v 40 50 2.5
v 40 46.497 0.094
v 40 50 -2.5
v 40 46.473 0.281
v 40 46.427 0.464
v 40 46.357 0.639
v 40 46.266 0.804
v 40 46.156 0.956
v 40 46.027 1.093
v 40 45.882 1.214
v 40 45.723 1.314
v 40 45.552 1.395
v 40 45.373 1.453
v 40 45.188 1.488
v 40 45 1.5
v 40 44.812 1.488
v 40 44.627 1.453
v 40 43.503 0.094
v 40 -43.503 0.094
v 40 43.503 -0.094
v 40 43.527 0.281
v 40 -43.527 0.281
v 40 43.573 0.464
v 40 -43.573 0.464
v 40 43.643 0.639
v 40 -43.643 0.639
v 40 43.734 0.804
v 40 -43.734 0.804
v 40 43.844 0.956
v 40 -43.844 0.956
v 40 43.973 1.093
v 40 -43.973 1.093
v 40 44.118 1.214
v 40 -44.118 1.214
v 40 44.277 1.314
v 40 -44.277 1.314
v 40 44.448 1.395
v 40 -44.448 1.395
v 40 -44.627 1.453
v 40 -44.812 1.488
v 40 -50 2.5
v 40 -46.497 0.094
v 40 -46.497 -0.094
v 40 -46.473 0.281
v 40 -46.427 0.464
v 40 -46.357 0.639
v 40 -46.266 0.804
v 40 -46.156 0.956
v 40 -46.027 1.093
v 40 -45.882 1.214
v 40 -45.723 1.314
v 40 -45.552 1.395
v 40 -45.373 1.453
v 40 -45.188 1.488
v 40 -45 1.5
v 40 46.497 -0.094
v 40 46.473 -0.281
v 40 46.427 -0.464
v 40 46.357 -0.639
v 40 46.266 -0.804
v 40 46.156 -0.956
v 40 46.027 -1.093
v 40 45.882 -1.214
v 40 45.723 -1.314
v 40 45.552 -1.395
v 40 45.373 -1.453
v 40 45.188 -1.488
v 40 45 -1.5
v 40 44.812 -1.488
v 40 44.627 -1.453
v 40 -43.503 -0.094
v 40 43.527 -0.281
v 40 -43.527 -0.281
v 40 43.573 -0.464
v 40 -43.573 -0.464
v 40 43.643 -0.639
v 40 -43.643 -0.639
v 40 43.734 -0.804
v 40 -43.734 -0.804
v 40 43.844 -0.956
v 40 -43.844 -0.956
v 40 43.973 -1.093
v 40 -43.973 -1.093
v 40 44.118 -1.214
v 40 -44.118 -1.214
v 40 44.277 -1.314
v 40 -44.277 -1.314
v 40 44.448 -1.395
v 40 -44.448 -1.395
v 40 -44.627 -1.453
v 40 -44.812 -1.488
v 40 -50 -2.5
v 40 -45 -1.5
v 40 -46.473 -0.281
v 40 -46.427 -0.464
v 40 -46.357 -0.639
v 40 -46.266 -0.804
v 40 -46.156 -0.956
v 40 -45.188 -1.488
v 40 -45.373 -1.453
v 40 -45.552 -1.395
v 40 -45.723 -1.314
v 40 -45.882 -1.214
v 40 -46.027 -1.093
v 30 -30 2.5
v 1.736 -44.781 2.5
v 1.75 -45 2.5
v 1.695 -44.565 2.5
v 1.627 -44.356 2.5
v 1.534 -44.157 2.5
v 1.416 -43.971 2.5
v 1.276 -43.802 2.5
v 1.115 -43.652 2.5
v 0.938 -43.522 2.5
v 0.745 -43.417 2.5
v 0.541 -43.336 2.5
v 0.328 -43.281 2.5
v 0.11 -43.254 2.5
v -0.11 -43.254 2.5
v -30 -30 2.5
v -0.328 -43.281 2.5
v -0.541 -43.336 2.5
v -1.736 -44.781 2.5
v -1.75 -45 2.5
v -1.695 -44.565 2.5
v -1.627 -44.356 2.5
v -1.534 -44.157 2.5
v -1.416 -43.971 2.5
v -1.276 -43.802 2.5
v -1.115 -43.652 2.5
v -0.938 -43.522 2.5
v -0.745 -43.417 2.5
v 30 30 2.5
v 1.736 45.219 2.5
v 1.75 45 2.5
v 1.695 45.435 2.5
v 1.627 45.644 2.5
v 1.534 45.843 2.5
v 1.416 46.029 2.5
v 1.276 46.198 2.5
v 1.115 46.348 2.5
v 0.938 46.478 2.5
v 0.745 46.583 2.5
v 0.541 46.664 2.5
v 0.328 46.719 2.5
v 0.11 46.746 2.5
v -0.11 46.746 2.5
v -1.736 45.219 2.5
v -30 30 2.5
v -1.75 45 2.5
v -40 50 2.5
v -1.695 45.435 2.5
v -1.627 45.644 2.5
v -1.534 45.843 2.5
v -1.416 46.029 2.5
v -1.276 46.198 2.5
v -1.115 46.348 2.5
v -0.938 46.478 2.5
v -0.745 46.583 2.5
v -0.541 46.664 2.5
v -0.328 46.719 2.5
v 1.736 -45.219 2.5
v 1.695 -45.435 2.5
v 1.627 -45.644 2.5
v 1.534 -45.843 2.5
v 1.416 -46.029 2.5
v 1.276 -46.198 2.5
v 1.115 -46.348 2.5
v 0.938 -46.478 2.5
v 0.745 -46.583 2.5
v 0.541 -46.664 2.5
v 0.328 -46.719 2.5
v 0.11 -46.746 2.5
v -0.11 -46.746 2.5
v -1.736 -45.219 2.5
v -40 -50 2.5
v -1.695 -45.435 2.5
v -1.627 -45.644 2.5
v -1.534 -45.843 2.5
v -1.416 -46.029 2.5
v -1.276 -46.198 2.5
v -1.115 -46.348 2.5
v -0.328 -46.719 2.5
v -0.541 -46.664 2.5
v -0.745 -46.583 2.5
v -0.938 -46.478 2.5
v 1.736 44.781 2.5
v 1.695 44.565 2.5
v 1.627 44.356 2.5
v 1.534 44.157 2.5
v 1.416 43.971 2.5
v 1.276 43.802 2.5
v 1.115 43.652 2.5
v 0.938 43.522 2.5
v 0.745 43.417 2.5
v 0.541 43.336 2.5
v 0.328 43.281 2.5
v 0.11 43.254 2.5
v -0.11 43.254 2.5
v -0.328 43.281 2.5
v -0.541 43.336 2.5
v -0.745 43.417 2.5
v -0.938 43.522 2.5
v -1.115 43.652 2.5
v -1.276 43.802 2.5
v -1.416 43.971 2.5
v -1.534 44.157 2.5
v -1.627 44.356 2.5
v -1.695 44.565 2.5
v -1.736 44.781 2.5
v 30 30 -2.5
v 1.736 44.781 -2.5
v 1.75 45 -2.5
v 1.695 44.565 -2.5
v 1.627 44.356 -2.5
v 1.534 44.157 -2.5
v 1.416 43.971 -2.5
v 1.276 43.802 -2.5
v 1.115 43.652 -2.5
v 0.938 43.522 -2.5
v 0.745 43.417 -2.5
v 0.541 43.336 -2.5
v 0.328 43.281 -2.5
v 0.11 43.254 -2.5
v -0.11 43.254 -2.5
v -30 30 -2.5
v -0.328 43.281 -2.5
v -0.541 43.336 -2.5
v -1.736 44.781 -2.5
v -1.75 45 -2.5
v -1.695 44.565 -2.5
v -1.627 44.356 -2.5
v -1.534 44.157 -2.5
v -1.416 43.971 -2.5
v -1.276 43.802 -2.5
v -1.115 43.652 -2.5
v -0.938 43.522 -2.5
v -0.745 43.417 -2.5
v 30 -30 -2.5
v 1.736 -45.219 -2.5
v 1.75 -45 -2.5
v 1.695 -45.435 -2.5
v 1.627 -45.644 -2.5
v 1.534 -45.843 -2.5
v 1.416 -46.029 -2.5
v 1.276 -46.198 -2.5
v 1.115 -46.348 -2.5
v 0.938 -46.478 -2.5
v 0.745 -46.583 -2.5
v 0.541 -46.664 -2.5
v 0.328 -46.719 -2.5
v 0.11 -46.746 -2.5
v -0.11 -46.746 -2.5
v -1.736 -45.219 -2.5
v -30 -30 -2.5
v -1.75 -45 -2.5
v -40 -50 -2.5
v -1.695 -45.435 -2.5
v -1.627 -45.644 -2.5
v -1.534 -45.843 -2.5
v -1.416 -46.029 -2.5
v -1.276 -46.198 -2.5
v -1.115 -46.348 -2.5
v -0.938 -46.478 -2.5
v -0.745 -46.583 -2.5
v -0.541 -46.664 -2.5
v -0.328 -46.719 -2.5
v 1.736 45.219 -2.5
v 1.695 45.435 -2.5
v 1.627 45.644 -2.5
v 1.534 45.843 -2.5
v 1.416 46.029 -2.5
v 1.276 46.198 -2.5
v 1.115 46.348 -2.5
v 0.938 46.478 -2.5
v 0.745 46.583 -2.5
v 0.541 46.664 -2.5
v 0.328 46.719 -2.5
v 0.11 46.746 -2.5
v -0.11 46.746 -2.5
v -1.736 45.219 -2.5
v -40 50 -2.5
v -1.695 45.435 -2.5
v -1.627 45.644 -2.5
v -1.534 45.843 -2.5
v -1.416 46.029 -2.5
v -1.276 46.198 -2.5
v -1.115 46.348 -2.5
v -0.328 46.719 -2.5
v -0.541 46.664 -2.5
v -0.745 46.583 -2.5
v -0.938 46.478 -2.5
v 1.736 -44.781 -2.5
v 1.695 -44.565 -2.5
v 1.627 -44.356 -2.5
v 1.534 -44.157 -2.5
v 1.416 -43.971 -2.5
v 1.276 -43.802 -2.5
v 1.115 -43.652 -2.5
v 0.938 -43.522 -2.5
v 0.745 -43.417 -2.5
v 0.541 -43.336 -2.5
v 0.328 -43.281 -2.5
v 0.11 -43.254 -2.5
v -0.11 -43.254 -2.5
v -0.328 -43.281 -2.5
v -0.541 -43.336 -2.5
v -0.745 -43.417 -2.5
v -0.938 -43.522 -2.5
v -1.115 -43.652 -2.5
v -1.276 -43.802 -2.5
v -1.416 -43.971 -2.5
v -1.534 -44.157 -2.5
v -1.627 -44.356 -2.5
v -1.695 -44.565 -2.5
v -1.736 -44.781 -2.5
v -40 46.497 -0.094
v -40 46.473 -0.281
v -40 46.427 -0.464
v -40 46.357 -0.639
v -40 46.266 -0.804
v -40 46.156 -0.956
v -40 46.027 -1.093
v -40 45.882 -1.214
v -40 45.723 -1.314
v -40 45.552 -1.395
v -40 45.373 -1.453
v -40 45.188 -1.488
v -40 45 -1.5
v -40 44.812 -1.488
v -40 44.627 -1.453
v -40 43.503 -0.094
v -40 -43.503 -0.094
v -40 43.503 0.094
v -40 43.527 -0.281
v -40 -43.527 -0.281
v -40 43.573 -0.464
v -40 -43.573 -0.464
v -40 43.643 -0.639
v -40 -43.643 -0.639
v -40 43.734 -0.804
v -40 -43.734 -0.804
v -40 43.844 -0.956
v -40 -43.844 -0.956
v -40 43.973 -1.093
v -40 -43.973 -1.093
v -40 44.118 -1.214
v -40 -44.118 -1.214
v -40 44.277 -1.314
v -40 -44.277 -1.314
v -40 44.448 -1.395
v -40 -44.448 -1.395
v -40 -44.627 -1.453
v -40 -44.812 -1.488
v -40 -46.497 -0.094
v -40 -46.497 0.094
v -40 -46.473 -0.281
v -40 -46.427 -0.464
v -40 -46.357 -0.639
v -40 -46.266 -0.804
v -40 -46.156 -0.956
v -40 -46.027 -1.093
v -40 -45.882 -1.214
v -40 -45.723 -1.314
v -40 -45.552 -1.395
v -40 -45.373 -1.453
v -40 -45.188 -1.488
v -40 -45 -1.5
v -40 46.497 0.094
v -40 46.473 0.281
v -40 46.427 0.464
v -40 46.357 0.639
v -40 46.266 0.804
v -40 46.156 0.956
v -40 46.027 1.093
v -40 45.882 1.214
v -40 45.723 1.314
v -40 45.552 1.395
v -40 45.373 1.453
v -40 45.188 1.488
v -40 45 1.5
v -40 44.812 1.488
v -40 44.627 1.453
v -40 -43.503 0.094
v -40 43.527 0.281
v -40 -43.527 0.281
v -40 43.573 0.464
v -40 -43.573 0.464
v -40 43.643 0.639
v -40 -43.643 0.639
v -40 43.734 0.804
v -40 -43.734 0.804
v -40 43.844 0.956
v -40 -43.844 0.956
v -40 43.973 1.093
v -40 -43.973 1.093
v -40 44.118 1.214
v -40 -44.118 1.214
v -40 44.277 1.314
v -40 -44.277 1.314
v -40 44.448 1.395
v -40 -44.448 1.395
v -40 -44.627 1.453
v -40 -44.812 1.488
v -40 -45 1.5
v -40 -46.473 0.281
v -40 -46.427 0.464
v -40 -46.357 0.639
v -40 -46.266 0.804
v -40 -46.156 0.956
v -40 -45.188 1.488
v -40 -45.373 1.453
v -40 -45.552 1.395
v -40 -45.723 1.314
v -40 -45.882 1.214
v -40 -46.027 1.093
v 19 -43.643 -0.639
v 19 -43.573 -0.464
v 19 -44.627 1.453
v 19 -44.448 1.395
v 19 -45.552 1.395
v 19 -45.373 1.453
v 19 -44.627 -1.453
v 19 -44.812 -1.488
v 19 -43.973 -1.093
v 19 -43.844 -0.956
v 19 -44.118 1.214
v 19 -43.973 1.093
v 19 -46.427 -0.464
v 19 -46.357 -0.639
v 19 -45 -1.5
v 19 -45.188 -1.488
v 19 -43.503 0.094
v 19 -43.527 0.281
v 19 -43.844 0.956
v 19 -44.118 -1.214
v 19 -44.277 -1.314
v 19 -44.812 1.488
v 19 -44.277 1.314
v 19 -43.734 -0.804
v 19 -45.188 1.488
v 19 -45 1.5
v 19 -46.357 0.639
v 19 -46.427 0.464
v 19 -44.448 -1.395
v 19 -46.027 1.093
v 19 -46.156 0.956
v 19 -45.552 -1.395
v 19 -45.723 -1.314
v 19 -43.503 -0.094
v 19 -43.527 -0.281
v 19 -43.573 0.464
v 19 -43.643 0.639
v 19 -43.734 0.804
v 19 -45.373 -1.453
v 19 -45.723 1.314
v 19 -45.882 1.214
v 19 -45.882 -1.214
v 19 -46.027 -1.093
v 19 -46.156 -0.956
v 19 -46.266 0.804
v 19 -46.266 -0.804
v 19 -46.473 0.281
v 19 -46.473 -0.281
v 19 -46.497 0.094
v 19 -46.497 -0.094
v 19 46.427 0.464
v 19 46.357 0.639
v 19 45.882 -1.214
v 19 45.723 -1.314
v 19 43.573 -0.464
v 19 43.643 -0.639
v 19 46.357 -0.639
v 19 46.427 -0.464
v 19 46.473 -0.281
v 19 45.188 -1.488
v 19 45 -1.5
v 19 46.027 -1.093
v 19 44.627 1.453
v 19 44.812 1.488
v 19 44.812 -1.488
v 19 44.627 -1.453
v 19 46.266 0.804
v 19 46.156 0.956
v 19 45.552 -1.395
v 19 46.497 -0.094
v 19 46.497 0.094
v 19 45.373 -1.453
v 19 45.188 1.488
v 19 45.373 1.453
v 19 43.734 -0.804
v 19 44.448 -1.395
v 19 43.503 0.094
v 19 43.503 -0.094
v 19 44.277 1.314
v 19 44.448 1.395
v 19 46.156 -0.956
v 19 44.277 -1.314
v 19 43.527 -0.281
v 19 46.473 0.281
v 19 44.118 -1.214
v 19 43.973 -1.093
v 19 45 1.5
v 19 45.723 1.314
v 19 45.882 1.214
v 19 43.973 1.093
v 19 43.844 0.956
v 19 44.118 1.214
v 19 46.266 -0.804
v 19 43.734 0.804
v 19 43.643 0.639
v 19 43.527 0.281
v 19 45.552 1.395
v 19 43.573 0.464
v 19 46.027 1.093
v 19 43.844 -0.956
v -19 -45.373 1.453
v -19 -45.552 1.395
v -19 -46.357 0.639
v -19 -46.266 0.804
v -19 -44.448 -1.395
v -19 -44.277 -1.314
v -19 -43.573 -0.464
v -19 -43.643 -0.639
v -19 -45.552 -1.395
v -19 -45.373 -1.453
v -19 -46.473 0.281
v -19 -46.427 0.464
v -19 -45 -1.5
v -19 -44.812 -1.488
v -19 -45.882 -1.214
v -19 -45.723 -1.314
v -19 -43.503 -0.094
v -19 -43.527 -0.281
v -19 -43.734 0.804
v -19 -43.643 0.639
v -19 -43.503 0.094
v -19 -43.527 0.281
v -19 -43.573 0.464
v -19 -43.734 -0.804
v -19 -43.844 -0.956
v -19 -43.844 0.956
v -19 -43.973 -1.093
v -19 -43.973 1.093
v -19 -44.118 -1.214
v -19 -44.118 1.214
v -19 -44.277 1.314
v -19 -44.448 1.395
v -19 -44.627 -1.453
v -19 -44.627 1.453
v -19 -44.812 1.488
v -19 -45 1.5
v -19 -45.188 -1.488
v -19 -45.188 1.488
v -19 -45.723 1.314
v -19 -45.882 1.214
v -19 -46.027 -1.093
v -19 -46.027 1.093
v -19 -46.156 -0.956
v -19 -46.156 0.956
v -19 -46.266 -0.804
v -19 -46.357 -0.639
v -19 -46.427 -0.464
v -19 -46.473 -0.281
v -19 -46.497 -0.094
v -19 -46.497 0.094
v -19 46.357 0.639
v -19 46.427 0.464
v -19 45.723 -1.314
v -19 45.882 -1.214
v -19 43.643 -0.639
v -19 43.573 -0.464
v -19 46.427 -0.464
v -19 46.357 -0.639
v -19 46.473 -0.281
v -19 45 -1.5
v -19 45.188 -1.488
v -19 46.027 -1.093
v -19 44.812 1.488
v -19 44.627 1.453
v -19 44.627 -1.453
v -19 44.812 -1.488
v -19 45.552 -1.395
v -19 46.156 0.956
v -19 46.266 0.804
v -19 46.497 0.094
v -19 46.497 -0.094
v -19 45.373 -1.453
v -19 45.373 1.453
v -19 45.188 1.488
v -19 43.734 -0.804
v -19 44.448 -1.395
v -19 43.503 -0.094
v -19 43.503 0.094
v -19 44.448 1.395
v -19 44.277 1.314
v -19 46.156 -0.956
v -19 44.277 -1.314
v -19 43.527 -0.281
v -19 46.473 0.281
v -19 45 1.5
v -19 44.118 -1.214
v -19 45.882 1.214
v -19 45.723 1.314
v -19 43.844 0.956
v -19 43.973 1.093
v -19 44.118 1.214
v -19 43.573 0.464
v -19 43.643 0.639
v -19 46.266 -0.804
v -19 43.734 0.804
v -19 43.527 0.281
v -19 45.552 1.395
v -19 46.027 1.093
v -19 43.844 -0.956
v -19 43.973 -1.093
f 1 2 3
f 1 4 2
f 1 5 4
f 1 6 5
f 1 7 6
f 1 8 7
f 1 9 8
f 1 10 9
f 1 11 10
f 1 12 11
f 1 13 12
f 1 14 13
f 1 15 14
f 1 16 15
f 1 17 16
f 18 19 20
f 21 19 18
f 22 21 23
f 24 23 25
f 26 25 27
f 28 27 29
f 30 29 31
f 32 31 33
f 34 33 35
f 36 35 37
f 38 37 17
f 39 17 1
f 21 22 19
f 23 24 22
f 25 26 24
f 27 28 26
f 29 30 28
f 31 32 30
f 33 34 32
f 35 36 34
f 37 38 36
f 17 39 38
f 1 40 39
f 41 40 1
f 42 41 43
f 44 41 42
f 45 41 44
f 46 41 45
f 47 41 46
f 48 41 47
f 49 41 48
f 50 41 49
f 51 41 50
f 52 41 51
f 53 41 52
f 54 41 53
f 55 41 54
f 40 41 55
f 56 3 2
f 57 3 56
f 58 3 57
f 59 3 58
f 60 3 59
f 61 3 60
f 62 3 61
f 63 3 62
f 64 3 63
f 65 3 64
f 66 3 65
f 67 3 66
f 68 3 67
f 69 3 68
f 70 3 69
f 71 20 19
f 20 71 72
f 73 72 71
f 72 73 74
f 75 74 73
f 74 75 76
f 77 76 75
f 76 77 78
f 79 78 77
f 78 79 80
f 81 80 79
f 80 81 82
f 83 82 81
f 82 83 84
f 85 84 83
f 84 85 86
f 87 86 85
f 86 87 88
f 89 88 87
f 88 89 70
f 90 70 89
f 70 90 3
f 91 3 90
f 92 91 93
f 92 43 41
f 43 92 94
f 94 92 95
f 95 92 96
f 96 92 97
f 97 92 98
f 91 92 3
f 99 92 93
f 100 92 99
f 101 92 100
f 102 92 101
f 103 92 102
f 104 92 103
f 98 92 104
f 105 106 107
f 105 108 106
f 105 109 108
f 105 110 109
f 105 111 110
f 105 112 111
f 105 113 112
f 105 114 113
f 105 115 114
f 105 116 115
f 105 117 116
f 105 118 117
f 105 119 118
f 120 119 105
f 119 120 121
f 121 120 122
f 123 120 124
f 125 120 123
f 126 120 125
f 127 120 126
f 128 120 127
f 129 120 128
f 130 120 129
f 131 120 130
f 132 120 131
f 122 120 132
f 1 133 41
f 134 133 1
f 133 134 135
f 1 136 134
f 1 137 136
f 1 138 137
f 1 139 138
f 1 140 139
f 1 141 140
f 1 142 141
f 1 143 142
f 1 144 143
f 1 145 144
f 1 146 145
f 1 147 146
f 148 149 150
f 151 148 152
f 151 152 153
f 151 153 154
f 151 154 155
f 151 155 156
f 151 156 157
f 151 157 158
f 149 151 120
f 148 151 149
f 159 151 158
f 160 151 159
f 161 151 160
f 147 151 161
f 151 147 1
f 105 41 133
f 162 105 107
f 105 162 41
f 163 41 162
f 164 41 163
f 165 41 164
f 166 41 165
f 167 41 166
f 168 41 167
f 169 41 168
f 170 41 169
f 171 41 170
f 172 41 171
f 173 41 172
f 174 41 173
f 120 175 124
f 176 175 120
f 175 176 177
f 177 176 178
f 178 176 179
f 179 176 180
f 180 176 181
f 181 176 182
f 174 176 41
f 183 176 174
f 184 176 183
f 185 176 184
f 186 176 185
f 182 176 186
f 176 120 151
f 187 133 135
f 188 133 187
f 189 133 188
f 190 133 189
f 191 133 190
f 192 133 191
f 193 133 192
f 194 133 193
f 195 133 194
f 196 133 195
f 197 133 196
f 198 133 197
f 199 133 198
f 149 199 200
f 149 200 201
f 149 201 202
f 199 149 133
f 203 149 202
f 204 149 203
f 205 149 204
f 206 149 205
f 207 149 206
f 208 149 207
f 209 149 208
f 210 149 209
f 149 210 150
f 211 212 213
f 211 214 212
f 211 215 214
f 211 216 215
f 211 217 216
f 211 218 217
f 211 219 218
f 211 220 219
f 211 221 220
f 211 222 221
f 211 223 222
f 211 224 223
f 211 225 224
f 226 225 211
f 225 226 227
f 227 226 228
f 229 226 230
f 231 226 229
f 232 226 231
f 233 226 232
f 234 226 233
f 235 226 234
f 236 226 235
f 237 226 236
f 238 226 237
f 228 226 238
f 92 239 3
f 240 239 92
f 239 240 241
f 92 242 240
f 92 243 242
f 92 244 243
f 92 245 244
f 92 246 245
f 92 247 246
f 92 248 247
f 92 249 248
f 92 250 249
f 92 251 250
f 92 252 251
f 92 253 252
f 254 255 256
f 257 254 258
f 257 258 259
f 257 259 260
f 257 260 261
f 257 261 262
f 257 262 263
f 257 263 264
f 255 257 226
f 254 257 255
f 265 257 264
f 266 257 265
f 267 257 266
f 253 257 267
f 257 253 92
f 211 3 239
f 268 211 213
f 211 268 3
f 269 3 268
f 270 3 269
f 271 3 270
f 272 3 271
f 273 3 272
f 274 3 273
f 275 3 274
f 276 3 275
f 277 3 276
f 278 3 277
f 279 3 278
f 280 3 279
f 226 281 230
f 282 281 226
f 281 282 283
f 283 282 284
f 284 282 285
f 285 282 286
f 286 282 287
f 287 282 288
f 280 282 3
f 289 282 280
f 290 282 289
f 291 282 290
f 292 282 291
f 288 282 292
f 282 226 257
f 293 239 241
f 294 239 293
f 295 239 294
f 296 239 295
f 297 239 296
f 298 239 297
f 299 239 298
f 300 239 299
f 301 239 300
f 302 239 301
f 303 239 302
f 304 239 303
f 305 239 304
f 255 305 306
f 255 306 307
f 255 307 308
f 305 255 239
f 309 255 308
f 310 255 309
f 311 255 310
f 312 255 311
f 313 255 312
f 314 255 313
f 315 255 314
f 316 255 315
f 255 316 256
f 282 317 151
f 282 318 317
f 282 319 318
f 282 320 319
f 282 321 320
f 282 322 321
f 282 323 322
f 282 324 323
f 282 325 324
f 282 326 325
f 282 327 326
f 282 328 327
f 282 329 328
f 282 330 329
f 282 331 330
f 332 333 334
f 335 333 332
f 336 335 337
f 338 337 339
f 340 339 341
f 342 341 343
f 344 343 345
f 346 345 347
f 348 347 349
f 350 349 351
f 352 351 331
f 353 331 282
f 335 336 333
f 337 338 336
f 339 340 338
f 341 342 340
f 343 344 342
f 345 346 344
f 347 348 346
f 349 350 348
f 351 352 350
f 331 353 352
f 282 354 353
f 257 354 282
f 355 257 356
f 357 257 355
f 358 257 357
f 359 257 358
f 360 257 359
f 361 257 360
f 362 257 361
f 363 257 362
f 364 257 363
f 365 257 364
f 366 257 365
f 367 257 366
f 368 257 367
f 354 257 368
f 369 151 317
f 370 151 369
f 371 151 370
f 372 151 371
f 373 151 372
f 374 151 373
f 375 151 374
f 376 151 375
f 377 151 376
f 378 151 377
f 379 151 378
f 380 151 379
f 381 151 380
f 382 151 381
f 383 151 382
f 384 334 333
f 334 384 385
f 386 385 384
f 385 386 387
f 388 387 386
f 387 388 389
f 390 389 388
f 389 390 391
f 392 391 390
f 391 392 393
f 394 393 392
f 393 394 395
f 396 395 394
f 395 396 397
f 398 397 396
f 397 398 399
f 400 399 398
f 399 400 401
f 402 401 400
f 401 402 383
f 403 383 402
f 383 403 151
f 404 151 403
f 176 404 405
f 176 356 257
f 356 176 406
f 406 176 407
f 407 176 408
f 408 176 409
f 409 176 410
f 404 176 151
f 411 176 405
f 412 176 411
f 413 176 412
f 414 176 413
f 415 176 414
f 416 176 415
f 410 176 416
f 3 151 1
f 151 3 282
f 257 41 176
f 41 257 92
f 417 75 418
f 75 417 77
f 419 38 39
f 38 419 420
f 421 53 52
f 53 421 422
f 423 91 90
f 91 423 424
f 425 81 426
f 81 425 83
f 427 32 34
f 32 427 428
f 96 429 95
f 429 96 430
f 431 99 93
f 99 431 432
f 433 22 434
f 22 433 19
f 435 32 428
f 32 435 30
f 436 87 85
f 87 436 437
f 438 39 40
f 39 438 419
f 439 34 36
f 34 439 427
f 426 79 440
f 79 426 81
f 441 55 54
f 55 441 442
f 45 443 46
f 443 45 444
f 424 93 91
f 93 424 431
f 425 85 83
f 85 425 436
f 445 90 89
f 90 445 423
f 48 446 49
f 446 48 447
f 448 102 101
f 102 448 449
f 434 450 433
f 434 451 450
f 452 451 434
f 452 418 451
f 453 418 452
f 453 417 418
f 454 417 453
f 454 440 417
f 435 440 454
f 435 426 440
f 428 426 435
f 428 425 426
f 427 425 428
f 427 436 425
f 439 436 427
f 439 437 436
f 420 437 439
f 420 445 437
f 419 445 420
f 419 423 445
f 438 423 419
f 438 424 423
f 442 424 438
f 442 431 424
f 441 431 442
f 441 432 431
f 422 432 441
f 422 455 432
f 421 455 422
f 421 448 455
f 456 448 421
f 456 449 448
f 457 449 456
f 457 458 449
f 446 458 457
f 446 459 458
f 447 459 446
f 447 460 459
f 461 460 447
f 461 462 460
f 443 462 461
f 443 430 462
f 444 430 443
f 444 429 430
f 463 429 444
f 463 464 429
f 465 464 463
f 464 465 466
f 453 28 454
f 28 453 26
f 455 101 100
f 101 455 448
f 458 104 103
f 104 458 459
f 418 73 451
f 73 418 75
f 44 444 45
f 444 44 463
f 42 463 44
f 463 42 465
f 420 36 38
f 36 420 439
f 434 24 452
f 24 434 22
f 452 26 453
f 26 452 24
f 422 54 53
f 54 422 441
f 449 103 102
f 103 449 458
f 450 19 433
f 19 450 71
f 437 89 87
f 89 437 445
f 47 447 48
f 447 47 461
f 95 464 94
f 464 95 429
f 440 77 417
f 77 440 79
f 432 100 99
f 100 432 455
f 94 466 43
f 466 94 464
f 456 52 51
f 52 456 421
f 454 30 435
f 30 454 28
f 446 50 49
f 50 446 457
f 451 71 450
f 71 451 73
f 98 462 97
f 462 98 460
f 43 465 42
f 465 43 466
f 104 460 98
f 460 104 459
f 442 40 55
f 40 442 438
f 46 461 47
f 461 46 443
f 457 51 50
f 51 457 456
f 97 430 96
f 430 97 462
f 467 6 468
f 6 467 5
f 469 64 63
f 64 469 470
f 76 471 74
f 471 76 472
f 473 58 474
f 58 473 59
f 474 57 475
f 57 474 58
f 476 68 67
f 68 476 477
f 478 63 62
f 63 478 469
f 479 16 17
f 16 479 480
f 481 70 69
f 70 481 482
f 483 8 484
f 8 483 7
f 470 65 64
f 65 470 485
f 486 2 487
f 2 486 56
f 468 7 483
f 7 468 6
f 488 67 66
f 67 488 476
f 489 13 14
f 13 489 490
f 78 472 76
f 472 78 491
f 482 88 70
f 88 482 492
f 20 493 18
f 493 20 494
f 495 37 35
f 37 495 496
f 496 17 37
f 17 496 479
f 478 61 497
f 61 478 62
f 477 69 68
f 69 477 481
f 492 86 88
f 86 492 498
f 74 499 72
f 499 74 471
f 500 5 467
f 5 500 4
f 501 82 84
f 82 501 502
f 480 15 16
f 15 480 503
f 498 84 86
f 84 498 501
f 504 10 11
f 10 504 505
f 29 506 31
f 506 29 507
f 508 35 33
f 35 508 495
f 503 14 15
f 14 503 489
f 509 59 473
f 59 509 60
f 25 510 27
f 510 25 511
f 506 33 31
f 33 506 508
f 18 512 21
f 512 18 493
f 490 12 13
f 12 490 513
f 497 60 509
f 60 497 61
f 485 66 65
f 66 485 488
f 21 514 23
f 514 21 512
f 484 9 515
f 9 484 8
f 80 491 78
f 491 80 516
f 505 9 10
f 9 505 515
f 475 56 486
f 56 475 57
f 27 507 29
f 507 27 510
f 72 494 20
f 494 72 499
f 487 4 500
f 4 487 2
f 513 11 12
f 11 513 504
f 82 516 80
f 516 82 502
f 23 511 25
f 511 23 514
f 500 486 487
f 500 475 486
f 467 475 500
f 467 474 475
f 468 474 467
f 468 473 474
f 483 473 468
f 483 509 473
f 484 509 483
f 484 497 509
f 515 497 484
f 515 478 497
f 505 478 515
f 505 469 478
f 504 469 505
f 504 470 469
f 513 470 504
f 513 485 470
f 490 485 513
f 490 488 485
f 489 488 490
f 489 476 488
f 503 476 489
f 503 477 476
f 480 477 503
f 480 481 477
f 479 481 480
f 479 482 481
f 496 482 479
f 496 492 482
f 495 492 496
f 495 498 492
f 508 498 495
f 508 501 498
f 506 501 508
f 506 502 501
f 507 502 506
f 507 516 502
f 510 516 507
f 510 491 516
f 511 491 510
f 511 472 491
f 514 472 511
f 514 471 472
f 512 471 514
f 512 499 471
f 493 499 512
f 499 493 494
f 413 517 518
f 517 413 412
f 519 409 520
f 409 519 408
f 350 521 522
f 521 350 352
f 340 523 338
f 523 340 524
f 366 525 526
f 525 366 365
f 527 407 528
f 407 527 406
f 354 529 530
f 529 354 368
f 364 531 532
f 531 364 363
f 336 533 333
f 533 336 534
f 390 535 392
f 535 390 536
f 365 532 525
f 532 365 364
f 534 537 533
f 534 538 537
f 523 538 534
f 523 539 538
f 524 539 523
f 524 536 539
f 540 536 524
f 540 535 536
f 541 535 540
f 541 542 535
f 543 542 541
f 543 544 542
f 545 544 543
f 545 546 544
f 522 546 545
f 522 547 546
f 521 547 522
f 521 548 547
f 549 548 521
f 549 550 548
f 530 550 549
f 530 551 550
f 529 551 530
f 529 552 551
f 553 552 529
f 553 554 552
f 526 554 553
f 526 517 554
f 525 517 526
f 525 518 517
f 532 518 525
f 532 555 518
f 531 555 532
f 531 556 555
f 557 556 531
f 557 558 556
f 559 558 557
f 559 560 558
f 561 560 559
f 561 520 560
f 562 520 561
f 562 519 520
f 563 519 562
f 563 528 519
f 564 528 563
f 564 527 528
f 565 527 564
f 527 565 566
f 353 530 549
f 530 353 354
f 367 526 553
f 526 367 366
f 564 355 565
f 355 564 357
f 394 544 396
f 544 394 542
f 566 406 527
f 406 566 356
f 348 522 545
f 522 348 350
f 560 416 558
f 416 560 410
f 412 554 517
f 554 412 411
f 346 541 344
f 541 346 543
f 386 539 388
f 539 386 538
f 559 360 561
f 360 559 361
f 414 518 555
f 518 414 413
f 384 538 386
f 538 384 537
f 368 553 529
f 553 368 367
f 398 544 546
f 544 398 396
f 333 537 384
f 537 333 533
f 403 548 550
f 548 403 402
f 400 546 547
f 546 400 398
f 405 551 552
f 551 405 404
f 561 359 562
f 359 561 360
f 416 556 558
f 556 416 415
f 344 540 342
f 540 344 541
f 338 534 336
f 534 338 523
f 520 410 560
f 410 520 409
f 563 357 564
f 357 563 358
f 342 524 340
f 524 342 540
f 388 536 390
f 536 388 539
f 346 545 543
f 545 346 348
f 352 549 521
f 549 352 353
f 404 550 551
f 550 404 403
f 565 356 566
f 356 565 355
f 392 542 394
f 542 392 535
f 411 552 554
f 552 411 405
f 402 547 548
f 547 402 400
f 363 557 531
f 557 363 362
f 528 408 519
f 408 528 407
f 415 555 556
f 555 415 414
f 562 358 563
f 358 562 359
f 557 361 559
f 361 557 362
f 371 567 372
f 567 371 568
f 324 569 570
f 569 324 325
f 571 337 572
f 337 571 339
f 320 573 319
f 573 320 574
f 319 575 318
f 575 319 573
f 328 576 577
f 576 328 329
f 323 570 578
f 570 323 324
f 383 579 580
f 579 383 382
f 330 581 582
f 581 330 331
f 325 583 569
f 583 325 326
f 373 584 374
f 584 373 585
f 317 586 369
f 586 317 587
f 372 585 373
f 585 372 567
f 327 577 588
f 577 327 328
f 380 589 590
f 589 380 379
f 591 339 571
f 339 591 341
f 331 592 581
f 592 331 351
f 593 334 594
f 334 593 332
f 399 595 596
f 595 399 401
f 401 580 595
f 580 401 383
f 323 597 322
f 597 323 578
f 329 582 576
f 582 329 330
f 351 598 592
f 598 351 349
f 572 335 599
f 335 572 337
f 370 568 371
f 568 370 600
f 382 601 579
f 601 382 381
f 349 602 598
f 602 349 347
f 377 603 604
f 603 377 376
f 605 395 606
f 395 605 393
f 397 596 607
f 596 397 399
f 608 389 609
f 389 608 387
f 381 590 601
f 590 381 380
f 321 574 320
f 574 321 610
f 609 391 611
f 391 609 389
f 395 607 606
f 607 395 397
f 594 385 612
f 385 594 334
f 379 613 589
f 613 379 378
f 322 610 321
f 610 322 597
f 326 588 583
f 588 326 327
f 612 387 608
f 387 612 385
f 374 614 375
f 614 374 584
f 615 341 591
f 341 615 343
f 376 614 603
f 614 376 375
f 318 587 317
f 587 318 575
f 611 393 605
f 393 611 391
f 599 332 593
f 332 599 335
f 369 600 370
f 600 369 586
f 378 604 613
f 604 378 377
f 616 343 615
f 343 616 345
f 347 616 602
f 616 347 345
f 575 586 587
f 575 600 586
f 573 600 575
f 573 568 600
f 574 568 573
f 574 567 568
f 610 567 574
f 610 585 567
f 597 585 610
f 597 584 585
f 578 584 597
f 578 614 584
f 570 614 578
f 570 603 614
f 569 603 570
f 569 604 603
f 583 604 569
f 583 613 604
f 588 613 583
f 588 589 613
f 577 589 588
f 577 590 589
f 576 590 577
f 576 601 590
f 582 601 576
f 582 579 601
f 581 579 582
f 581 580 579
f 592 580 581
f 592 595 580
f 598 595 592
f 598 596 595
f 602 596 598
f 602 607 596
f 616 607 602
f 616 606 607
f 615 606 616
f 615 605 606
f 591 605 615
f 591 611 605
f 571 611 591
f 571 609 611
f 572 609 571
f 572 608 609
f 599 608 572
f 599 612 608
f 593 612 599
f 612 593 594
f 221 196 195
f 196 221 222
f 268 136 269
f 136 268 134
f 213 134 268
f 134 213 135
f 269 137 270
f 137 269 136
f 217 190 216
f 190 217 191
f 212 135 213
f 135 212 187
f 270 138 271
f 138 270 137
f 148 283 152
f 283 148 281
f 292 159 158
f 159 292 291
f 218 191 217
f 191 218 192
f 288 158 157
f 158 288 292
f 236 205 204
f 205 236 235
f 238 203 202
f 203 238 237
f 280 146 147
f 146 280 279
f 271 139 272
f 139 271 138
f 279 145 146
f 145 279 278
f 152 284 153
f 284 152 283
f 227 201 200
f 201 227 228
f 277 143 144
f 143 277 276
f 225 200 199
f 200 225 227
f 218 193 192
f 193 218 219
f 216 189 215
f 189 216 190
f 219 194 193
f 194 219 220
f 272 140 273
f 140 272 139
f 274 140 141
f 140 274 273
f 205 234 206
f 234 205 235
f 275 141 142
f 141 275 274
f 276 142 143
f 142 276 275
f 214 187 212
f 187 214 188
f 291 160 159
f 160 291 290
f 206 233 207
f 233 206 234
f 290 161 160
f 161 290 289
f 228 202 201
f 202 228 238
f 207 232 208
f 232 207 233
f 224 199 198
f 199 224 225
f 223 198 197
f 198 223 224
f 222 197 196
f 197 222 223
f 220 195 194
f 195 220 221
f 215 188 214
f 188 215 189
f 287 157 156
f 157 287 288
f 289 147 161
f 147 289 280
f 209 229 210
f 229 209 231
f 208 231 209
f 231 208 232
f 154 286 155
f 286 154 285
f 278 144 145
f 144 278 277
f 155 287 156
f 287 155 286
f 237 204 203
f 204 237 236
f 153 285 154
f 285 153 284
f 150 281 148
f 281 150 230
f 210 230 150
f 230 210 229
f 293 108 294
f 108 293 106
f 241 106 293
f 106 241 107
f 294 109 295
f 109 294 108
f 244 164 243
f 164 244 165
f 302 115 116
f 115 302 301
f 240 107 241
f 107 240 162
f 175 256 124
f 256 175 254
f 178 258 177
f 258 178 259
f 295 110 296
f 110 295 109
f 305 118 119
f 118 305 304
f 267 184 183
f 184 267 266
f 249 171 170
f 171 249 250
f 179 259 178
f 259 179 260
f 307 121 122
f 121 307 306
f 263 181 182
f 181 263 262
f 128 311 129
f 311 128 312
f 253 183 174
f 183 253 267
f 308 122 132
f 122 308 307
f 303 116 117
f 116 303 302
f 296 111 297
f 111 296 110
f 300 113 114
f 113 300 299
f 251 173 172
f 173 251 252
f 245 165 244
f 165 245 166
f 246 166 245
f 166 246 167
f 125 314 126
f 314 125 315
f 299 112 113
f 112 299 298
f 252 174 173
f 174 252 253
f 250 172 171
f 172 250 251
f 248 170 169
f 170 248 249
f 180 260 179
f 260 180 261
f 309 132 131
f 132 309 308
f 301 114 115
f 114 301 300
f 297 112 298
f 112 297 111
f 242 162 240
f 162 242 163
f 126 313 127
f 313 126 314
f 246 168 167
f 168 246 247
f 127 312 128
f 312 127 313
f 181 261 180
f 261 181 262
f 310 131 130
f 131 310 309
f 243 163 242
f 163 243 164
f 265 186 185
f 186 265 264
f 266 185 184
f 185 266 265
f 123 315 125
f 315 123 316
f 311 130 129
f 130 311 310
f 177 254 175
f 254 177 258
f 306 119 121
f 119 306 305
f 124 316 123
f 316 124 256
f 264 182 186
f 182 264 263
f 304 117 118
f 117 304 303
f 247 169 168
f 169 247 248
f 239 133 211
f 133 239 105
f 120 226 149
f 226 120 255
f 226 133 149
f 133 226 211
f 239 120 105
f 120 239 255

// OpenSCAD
$fn=50;

difference()
{
    cube([80,100,5],center=true);

    
    // Alignment-Holes
    translate([ 30,-45,0]) rotate([0,90,0]) cylinder(h=22,d1=3,d2=3,center=true);
    translate([ 30, 45,0]) rotate([0,90,0]) cylinder(h=22,d1=3,d2=3,center=true);
    translate([-30,-45,0]) rotate([0,90,0]) cylinder(h=22,d1=3,d2=3,center=true);
    translate([-30, 45,0]) rotate([0,90,0]) cylinder(h=22,d1=3,d2=3,center=true);

    // Mounting Holes
    translate([0, 45,0]) cylinder(h=20,d=3.5,center=true);
    translate([0,-45,0]) cylinder(h=20,d=3.5,center=true);

    // Holes
    cube([60,60,20],center=true);
//    translate([ 40,0,0]) cube([30,60,20],center=true);
//    translate([-40,0,0]) cube([30,60,20],center=true);
}
